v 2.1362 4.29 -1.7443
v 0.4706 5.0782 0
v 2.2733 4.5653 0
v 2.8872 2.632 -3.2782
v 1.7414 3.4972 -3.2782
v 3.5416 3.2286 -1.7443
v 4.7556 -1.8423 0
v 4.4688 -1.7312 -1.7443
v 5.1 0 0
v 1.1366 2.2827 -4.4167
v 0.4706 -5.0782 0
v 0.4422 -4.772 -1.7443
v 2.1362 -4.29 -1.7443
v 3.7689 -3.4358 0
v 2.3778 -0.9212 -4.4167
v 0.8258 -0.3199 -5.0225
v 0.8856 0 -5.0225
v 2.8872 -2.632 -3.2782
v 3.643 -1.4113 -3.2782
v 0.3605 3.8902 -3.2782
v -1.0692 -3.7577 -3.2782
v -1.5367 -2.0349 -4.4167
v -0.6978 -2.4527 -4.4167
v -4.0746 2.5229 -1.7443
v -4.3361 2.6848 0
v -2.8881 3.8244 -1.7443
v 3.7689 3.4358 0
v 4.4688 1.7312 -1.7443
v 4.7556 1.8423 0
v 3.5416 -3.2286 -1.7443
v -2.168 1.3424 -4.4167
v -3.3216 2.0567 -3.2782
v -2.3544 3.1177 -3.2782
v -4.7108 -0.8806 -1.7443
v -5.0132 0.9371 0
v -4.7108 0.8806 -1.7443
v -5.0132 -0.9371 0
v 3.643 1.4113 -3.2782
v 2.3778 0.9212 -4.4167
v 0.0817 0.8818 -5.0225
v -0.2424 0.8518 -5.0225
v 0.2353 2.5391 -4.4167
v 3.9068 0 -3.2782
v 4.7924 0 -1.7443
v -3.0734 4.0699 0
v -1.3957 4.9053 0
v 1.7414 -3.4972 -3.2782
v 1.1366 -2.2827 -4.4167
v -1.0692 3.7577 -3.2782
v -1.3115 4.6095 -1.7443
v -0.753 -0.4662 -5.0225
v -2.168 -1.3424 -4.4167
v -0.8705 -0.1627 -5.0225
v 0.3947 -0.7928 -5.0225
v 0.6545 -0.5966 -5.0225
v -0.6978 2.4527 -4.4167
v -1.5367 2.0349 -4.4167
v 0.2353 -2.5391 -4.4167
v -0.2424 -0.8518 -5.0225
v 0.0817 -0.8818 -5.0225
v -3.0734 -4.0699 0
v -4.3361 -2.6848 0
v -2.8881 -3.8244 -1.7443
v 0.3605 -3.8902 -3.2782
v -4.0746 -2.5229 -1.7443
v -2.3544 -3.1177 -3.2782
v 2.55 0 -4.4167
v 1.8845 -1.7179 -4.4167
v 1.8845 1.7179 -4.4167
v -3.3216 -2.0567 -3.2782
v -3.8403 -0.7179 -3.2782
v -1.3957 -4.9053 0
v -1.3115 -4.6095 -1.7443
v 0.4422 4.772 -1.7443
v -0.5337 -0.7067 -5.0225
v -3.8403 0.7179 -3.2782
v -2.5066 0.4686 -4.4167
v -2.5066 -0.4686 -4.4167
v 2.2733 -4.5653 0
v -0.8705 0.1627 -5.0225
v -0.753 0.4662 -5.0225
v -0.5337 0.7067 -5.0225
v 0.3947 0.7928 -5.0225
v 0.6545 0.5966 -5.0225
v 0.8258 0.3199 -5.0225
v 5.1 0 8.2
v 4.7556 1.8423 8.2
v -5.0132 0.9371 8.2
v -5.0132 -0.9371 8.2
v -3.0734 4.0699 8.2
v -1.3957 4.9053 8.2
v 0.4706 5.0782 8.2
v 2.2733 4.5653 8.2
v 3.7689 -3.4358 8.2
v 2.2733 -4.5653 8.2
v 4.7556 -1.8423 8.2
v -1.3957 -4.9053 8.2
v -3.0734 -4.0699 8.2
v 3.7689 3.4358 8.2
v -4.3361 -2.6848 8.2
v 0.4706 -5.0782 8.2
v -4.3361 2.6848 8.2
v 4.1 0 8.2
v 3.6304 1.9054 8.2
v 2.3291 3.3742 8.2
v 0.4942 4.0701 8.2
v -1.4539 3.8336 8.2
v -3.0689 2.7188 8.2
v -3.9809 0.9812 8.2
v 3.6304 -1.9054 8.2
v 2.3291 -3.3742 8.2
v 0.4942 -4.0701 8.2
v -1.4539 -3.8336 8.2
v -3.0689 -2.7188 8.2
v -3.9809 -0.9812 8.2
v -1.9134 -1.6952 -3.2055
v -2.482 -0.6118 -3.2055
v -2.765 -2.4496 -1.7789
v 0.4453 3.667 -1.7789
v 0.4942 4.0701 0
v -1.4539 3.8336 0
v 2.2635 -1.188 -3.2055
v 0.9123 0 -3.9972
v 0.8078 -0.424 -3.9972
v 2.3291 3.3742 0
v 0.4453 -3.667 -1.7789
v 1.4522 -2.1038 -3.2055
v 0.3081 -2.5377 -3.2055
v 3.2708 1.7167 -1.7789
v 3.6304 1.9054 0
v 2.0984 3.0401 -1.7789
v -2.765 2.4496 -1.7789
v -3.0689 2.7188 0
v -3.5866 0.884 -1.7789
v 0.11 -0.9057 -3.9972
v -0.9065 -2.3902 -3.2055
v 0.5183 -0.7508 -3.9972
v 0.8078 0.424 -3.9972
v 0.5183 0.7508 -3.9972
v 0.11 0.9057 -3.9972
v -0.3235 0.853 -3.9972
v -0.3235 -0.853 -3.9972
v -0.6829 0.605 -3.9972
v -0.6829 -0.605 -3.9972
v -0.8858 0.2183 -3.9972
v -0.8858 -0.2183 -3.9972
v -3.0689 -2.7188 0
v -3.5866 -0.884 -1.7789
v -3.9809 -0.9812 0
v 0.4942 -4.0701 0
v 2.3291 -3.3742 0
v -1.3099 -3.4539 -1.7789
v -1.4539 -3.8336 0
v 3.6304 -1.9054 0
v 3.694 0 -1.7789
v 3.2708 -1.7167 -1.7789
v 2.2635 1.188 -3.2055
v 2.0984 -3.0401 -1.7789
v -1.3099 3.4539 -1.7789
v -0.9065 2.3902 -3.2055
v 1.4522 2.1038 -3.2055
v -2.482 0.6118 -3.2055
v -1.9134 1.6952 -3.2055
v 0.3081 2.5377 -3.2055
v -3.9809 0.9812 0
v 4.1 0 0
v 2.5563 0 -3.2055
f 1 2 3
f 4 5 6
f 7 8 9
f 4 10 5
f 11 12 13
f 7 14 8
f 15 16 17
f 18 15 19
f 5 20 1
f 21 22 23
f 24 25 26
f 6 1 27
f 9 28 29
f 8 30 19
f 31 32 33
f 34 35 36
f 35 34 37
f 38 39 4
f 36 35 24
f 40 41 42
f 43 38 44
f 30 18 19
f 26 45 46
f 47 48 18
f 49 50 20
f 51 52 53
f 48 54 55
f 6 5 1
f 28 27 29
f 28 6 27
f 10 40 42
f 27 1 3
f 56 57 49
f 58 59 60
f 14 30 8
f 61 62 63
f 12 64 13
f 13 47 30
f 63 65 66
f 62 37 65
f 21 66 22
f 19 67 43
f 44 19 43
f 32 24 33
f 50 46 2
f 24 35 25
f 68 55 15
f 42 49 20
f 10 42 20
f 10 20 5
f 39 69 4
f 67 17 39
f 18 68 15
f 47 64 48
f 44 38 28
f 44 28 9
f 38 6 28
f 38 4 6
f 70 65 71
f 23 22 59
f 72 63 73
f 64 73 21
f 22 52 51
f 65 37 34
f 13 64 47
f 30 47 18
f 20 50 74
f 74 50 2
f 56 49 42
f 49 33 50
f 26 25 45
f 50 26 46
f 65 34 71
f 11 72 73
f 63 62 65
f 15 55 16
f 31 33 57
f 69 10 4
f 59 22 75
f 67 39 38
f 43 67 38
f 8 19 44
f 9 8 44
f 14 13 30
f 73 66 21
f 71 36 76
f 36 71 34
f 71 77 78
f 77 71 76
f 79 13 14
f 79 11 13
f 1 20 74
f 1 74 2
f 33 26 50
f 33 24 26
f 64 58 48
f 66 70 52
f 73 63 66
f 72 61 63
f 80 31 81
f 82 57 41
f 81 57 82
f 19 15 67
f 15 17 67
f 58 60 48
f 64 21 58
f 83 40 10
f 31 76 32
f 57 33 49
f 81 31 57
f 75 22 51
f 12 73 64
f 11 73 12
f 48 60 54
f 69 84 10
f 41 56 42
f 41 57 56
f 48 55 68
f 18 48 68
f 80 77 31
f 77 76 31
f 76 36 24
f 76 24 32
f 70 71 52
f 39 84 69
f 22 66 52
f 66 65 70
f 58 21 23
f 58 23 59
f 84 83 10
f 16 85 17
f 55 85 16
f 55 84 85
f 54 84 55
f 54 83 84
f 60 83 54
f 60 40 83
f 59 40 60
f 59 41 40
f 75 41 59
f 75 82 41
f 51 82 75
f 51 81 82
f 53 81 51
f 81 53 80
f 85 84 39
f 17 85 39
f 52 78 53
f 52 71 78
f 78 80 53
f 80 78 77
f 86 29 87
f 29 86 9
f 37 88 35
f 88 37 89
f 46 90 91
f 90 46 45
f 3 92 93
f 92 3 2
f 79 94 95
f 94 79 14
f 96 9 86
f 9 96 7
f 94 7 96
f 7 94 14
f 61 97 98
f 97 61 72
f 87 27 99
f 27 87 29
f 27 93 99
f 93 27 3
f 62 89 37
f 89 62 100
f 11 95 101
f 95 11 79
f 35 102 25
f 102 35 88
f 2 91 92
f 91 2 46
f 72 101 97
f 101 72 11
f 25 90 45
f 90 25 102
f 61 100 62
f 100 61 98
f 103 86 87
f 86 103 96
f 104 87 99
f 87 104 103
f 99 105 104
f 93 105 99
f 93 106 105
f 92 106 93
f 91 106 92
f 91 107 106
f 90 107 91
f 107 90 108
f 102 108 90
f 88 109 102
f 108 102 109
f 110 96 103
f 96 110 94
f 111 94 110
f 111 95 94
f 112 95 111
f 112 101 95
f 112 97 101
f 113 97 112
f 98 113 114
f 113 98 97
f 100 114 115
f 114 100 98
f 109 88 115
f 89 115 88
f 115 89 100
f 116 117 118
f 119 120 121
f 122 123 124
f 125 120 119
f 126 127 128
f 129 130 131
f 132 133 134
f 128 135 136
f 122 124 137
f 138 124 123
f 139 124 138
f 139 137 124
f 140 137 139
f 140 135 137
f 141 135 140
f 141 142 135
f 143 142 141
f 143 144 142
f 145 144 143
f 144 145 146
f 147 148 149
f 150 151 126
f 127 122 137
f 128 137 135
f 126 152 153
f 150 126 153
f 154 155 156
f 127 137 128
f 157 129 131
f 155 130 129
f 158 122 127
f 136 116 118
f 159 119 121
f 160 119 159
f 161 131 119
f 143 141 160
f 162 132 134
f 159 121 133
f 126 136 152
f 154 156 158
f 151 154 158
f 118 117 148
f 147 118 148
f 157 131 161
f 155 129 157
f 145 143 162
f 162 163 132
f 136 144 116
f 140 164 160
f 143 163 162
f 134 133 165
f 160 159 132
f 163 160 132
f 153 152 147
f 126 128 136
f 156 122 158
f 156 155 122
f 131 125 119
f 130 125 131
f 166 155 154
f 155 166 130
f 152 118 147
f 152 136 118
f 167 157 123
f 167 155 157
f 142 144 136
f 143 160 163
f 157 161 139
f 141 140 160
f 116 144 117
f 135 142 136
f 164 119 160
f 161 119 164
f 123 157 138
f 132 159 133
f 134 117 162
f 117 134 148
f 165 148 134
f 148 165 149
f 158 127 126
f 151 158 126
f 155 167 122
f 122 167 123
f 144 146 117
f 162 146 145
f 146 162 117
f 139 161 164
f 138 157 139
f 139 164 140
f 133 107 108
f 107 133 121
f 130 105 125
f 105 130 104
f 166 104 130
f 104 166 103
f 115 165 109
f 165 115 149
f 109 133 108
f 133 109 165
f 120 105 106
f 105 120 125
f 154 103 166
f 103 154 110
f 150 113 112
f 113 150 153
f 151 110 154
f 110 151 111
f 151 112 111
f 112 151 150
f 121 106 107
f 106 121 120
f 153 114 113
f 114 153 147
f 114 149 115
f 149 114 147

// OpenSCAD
trubicka = 8.2;
hrana = 1;

difference(){
	union(){
		sphere(d=trubicka+hrana*2);
		cylinder(d=trubicka+hrana*2, h=trubicka);
	}
	union(){
		sphere(d=trubicka);
		cylinder(d=trubicka, h=trubicka+1);
	}
}
